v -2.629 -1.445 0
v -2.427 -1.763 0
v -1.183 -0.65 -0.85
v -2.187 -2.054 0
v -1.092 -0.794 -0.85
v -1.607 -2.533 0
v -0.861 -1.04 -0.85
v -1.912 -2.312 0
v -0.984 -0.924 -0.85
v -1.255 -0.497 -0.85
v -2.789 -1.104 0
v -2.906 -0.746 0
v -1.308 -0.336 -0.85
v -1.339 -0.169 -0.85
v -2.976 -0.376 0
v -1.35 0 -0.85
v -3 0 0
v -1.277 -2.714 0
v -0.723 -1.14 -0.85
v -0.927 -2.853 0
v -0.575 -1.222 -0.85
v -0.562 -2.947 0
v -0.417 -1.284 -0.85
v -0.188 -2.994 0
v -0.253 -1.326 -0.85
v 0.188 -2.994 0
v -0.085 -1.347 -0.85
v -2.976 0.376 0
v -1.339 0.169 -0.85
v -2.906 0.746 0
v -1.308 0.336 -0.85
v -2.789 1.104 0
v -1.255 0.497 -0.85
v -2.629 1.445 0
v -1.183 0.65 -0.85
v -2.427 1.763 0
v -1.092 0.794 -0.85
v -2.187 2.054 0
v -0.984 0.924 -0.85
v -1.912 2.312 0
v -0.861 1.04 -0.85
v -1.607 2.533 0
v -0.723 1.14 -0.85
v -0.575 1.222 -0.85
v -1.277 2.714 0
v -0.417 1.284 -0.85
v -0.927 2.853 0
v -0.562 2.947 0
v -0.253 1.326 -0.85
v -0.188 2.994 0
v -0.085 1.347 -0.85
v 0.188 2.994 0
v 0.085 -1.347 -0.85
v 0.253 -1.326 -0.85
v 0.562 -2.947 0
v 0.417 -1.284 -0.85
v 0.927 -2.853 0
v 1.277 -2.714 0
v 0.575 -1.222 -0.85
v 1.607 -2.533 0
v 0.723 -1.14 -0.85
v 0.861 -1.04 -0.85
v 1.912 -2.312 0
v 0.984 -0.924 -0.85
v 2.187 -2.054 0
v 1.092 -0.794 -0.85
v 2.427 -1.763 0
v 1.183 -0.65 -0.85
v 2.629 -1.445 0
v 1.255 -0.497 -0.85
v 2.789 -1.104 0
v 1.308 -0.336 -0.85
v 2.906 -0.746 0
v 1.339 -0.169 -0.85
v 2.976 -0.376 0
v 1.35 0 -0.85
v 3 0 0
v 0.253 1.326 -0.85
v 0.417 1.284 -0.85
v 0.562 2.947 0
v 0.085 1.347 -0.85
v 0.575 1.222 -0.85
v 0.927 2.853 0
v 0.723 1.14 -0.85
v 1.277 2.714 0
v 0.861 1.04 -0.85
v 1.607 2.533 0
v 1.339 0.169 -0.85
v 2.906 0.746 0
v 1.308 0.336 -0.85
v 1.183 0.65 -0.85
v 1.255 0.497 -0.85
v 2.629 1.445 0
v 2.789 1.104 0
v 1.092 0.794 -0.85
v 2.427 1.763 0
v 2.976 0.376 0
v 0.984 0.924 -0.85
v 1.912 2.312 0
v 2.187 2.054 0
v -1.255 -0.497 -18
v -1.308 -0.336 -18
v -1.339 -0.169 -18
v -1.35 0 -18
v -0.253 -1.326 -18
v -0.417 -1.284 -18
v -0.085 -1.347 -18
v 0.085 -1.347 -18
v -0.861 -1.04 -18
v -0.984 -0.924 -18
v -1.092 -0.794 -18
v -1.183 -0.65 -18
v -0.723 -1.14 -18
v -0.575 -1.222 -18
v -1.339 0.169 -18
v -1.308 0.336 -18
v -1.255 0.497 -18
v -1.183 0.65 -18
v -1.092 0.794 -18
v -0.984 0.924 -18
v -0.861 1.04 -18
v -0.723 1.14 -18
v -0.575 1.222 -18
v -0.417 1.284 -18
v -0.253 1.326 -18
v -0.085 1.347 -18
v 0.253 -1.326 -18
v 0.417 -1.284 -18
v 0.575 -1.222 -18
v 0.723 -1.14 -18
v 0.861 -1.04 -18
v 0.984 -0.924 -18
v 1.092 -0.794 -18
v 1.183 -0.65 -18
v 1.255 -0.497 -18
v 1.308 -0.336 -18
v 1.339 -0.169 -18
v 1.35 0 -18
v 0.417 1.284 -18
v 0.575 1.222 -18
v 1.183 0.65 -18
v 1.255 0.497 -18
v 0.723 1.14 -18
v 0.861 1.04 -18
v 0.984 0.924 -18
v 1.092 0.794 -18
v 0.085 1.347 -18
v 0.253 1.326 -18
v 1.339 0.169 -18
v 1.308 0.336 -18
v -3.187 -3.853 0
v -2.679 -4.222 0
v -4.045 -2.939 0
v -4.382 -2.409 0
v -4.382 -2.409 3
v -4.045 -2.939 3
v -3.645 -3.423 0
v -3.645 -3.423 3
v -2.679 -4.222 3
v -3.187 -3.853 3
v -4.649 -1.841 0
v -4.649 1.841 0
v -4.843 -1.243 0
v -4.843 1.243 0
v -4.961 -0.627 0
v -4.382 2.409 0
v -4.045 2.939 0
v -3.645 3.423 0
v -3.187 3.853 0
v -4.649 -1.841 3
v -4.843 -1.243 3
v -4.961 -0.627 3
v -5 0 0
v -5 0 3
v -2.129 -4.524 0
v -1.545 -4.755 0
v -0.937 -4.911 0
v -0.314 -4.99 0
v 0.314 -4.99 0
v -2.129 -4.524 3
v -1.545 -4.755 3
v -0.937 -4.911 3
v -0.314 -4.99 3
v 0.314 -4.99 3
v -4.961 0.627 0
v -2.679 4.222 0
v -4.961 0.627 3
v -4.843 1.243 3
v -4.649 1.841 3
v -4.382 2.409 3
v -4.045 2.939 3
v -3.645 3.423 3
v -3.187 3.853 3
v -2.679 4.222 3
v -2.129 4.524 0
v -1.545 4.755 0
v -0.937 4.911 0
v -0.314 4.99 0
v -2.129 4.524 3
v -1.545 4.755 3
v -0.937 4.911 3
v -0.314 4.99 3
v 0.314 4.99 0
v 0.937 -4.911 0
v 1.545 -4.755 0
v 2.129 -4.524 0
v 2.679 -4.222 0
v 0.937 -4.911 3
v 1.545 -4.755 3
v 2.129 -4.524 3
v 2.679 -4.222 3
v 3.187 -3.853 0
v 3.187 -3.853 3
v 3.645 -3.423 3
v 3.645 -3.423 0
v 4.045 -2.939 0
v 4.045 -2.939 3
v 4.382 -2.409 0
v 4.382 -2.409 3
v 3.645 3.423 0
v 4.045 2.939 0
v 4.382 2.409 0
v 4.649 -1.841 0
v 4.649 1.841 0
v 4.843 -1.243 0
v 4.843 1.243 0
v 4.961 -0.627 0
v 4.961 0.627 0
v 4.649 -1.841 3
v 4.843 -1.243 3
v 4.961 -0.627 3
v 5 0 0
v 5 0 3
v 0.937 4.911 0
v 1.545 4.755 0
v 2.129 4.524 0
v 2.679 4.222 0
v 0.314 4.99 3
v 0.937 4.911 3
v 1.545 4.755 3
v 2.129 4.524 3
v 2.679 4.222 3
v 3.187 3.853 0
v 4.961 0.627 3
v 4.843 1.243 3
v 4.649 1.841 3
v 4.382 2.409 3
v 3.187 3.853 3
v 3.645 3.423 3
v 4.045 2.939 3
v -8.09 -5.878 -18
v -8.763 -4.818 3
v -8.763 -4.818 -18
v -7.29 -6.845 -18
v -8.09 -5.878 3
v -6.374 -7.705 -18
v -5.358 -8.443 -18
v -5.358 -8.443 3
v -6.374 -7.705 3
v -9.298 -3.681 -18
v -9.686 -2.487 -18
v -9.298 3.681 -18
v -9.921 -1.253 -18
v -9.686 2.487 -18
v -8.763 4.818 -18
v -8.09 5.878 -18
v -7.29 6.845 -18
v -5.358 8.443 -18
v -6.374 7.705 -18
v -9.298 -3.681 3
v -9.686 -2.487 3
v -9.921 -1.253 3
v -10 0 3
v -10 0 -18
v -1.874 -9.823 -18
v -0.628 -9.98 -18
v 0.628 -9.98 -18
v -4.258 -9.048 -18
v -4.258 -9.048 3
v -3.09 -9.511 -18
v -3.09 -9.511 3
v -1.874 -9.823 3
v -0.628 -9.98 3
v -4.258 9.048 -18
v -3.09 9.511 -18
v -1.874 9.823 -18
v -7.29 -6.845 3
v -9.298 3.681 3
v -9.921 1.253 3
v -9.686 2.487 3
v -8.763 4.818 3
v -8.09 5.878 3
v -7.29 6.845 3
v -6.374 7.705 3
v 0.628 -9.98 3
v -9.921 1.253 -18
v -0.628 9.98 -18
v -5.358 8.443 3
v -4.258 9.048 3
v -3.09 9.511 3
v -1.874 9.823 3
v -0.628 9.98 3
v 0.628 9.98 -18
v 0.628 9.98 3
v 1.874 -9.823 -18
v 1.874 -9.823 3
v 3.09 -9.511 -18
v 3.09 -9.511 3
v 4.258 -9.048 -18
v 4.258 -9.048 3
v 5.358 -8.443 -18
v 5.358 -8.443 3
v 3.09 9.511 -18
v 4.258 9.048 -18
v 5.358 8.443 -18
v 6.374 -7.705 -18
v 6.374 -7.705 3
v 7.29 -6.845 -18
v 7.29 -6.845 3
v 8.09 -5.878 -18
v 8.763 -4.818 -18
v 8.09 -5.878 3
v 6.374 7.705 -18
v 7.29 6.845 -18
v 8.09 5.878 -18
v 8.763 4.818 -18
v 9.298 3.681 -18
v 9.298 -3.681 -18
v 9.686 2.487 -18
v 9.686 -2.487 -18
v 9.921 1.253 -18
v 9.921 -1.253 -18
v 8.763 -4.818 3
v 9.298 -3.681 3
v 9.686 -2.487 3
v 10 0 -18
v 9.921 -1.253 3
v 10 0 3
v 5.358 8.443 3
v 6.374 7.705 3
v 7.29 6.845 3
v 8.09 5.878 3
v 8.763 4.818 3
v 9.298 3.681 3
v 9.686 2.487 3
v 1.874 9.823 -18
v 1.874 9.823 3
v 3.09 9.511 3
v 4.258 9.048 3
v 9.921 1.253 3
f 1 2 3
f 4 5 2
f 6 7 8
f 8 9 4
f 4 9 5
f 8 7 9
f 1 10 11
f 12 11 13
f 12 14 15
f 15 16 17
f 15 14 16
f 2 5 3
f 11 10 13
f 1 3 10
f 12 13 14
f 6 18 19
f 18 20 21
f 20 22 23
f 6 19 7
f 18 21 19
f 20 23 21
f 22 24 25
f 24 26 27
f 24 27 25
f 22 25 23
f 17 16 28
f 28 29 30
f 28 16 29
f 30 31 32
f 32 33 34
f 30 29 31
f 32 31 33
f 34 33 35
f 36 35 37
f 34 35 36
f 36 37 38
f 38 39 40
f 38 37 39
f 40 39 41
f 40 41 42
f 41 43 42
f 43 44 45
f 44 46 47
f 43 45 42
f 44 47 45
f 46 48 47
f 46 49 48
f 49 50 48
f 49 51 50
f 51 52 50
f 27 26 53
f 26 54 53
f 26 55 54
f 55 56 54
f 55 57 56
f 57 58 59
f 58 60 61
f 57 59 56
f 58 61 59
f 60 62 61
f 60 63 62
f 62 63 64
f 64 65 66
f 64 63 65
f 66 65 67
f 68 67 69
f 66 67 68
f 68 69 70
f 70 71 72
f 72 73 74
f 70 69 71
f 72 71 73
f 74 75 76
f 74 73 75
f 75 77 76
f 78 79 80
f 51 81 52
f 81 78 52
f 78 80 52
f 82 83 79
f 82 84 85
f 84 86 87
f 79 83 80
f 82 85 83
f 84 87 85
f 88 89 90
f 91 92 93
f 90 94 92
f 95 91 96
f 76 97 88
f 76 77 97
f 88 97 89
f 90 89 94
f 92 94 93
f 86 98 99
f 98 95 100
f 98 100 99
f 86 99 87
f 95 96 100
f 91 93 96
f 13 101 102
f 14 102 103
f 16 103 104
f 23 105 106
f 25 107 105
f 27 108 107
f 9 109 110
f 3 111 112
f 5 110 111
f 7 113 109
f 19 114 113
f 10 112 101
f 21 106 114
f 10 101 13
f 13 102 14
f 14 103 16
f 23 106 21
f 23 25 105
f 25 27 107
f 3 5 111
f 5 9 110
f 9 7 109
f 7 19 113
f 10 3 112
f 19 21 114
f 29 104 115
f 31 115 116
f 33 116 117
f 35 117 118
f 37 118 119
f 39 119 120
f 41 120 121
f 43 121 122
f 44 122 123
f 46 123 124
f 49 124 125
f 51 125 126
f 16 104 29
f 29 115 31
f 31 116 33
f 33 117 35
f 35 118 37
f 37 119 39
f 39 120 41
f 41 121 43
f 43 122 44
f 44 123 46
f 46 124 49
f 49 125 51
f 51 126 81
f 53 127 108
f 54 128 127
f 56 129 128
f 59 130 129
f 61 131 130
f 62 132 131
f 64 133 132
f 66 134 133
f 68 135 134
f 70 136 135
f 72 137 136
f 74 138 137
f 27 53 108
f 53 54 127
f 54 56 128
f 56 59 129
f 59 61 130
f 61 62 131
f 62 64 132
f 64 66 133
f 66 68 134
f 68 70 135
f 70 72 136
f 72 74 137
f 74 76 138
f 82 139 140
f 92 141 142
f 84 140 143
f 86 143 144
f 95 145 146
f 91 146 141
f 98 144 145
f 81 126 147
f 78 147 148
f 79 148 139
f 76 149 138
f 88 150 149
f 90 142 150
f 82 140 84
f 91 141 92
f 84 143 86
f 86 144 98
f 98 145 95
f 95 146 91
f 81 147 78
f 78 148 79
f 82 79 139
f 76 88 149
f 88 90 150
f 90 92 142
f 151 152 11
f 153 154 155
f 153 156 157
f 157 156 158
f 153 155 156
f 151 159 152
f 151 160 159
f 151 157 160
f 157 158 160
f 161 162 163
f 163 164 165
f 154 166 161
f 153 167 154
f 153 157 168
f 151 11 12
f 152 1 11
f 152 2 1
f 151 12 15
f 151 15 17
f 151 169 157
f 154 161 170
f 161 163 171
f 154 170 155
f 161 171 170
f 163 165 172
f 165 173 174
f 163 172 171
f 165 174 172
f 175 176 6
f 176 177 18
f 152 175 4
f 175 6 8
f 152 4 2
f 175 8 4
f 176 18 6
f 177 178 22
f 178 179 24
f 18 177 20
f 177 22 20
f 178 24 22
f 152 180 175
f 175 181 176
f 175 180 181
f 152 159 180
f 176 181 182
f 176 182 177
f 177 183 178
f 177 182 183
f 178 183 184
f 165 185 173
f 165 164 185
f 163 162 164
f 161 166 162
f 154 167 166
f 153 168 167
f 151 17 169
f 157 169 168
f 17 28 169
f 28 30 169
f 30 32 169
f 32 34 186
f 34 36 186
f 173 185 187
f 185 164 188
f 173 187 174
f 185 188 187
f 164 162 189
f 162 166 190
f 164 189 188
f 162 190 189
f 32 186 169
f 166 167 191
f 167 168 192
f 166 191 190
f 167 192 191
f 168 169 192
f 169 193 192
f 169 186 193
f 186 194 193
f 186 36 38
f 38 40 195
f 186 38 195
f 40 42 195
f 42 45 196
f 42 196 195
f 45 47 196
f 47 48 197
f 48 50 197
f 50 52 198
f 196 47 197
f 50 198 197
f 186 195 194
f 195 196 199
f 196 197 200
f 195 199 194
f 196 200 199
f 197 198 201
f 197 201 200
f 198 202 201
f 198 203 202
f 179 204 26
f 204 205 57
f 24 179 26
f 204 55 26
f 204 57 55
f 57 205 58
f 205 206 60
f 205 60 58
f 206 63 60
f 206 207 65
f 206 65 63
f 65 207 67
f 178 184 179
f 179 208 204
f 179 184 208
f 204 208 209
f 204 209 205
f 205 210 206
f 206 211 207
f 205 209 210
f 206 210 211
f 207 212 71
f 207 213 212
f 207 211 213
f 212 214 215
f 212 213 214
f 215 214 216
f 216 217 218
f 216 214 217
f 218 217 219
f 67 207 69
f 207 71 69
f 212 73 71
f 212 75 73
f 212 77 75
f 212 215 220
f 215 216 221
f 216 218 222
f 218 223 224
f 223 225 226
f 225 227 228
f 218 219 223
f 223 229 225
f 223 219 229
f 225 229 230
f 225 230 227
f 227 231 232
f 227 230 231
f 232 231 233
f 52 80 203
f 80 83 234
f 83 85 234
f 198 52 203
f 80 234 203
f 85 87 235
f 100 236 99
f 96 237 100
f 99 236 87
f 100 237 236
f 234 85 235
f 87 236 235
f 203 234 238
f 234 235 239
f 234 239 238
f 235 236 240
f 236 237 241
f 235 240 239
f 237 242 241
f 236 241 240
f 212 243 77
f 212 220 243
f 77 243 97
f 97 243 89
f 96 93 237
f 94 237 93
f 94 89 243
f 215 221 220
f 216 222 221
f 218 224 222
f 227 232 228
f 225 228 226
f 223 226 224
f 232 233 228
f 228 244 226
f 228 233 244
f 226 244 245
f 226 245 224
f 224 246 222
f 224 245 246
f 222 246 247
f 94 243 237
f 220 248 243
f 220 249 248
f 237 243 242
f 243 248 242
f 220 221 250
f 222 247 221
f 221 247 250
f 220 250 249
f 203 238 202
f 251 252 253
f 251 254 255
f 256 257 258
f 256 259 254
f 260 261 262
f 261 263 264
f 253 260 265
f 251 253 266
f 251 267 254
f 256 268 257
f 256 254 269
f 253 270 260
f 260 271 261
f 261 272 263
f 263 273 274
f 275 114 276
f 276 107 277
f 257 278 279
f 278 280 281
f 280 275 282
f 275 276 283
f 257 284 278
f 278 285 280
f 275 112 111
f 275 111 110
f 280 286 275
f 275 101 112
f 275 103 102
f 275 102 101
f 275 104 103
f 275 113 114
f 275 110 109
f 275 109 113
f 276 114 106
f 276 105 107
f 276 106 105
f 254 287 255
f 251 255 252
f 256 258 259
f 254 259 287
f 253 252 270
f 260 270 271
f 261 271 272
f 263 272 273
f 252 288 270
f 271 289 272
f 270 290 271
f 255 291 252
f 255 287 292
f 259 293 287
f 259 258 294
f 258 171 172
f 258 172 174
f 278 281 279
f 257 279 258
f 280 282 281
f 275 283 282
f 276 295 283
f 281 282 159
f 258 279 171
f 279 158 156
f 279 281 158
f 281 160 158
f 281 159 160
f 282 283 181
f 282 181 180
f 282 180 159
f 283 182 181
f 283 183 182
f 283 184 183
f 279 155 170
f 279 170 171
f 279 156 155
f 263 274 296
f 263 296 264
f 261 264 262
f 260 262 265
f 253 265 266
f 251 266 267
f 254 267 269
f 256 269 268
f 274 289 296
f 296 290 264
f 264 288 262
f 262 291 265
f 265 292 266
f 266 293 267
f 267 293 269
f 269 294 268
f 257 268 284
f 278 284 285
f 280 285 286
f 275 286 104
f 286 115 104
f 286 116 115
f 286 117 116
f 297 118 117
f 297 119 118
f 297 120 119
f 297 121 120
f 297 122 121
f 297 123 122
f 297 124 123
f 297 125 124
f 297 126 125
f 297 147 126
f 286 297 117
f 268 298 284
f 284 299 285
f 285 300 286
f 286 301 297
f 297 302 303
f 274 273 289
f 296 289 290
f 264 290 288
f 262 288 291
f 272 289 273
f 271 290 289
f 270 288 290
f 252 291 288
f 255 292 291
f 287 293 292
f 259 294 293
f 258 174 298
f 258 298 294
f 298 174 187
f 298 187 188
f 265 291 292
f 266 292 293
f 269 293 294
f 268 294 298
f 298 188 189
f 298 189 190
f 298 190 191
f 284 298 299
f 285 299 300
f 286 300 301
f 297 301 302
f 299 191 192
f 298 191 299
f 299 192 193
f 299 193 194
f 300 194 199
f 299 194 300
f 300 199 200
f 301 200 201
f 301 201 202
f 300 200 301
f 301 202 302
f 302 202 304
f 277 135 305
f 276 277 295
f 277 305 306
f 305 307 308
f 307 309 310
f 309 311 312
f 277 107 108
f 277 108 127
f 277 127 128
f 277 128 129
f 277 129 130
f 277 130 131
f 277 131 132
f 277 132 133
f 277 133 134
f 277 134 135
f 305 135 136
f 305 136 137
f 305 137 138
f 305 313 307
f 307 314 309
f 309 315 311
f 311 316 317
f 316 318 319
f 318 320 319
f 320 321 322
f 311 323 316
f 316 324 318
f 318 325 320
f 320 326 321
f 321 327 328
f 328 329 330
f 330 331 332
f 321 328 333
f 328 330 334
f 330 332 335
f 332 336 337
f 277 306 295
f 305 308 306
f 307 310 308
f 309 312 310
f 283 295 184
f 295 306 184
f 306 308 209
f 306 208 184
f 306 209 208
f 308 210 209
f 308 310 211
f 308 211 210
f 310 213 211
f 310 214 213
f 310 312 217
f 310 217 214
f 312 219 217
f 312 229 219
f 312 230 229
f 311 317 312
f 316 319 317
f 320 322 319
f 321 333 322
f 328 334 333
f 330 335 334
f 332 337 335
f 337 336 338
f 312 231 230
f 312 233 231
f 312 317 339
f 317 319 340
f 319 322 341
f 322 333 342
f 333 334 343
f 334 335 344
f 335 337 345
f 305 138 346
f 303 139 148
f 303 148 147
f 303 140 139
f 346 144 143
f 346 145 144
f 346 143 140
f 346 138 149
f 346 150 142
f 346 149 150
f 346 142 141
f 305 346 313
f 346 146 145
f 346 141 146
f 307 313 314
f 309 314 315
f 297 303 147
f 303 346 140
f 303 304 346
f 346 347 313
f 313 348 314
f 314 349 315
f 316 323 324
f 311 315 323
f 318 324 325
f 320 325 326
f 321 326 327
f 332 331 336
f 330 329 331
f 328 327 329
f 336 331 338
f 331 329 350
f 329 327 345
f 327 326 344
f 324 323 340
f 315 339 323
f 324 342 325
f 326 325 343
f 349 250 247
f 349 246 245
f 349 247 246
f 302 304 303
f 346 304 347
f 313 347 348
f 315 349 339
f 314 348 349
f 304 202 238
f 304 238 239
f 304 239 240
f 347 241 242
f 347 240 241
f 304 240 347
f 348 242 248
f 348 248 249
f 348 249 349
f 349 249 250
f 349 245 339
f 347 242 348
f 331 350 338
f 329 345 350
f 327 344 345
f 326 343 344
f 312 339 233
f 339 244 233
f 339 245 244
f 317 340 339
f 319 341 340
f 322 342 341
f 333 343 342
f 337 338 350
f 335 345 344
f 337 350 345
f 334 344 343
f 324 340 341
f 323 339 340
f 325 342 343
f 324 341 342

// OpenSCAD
$fn = 50;

difference() {
	union() {
		translate(v = [0, 0, -18.0]) {
			cylinder(h = 21, r = 10.0);
		}
	}
	union() {
		translate(v = [0, 0, 0]) {
			rotate(a = [0, 0, 0]) {
				difference() {
					union() {
						translate(v = [0, 0, -21.0]) {
							cylinder(h = 21, r = 1.0);
						}
						translate(v = [0, 0, -0.85]) {
							cylinder(h = 0.85, r1 = 1.35, r2 = 3.0);
						}
						translate(v = [0, 0, -21.0]) {
							cylinder(h = 21, r = 1.35);
						}
						translate(v = [0, 0, -21.0]) {
							cylinder(h = 21, r = 1.0);
						}
					}
					union();
				}
			}
		}
		#cylinder(h = 3, r = 5.0);
	}
}
